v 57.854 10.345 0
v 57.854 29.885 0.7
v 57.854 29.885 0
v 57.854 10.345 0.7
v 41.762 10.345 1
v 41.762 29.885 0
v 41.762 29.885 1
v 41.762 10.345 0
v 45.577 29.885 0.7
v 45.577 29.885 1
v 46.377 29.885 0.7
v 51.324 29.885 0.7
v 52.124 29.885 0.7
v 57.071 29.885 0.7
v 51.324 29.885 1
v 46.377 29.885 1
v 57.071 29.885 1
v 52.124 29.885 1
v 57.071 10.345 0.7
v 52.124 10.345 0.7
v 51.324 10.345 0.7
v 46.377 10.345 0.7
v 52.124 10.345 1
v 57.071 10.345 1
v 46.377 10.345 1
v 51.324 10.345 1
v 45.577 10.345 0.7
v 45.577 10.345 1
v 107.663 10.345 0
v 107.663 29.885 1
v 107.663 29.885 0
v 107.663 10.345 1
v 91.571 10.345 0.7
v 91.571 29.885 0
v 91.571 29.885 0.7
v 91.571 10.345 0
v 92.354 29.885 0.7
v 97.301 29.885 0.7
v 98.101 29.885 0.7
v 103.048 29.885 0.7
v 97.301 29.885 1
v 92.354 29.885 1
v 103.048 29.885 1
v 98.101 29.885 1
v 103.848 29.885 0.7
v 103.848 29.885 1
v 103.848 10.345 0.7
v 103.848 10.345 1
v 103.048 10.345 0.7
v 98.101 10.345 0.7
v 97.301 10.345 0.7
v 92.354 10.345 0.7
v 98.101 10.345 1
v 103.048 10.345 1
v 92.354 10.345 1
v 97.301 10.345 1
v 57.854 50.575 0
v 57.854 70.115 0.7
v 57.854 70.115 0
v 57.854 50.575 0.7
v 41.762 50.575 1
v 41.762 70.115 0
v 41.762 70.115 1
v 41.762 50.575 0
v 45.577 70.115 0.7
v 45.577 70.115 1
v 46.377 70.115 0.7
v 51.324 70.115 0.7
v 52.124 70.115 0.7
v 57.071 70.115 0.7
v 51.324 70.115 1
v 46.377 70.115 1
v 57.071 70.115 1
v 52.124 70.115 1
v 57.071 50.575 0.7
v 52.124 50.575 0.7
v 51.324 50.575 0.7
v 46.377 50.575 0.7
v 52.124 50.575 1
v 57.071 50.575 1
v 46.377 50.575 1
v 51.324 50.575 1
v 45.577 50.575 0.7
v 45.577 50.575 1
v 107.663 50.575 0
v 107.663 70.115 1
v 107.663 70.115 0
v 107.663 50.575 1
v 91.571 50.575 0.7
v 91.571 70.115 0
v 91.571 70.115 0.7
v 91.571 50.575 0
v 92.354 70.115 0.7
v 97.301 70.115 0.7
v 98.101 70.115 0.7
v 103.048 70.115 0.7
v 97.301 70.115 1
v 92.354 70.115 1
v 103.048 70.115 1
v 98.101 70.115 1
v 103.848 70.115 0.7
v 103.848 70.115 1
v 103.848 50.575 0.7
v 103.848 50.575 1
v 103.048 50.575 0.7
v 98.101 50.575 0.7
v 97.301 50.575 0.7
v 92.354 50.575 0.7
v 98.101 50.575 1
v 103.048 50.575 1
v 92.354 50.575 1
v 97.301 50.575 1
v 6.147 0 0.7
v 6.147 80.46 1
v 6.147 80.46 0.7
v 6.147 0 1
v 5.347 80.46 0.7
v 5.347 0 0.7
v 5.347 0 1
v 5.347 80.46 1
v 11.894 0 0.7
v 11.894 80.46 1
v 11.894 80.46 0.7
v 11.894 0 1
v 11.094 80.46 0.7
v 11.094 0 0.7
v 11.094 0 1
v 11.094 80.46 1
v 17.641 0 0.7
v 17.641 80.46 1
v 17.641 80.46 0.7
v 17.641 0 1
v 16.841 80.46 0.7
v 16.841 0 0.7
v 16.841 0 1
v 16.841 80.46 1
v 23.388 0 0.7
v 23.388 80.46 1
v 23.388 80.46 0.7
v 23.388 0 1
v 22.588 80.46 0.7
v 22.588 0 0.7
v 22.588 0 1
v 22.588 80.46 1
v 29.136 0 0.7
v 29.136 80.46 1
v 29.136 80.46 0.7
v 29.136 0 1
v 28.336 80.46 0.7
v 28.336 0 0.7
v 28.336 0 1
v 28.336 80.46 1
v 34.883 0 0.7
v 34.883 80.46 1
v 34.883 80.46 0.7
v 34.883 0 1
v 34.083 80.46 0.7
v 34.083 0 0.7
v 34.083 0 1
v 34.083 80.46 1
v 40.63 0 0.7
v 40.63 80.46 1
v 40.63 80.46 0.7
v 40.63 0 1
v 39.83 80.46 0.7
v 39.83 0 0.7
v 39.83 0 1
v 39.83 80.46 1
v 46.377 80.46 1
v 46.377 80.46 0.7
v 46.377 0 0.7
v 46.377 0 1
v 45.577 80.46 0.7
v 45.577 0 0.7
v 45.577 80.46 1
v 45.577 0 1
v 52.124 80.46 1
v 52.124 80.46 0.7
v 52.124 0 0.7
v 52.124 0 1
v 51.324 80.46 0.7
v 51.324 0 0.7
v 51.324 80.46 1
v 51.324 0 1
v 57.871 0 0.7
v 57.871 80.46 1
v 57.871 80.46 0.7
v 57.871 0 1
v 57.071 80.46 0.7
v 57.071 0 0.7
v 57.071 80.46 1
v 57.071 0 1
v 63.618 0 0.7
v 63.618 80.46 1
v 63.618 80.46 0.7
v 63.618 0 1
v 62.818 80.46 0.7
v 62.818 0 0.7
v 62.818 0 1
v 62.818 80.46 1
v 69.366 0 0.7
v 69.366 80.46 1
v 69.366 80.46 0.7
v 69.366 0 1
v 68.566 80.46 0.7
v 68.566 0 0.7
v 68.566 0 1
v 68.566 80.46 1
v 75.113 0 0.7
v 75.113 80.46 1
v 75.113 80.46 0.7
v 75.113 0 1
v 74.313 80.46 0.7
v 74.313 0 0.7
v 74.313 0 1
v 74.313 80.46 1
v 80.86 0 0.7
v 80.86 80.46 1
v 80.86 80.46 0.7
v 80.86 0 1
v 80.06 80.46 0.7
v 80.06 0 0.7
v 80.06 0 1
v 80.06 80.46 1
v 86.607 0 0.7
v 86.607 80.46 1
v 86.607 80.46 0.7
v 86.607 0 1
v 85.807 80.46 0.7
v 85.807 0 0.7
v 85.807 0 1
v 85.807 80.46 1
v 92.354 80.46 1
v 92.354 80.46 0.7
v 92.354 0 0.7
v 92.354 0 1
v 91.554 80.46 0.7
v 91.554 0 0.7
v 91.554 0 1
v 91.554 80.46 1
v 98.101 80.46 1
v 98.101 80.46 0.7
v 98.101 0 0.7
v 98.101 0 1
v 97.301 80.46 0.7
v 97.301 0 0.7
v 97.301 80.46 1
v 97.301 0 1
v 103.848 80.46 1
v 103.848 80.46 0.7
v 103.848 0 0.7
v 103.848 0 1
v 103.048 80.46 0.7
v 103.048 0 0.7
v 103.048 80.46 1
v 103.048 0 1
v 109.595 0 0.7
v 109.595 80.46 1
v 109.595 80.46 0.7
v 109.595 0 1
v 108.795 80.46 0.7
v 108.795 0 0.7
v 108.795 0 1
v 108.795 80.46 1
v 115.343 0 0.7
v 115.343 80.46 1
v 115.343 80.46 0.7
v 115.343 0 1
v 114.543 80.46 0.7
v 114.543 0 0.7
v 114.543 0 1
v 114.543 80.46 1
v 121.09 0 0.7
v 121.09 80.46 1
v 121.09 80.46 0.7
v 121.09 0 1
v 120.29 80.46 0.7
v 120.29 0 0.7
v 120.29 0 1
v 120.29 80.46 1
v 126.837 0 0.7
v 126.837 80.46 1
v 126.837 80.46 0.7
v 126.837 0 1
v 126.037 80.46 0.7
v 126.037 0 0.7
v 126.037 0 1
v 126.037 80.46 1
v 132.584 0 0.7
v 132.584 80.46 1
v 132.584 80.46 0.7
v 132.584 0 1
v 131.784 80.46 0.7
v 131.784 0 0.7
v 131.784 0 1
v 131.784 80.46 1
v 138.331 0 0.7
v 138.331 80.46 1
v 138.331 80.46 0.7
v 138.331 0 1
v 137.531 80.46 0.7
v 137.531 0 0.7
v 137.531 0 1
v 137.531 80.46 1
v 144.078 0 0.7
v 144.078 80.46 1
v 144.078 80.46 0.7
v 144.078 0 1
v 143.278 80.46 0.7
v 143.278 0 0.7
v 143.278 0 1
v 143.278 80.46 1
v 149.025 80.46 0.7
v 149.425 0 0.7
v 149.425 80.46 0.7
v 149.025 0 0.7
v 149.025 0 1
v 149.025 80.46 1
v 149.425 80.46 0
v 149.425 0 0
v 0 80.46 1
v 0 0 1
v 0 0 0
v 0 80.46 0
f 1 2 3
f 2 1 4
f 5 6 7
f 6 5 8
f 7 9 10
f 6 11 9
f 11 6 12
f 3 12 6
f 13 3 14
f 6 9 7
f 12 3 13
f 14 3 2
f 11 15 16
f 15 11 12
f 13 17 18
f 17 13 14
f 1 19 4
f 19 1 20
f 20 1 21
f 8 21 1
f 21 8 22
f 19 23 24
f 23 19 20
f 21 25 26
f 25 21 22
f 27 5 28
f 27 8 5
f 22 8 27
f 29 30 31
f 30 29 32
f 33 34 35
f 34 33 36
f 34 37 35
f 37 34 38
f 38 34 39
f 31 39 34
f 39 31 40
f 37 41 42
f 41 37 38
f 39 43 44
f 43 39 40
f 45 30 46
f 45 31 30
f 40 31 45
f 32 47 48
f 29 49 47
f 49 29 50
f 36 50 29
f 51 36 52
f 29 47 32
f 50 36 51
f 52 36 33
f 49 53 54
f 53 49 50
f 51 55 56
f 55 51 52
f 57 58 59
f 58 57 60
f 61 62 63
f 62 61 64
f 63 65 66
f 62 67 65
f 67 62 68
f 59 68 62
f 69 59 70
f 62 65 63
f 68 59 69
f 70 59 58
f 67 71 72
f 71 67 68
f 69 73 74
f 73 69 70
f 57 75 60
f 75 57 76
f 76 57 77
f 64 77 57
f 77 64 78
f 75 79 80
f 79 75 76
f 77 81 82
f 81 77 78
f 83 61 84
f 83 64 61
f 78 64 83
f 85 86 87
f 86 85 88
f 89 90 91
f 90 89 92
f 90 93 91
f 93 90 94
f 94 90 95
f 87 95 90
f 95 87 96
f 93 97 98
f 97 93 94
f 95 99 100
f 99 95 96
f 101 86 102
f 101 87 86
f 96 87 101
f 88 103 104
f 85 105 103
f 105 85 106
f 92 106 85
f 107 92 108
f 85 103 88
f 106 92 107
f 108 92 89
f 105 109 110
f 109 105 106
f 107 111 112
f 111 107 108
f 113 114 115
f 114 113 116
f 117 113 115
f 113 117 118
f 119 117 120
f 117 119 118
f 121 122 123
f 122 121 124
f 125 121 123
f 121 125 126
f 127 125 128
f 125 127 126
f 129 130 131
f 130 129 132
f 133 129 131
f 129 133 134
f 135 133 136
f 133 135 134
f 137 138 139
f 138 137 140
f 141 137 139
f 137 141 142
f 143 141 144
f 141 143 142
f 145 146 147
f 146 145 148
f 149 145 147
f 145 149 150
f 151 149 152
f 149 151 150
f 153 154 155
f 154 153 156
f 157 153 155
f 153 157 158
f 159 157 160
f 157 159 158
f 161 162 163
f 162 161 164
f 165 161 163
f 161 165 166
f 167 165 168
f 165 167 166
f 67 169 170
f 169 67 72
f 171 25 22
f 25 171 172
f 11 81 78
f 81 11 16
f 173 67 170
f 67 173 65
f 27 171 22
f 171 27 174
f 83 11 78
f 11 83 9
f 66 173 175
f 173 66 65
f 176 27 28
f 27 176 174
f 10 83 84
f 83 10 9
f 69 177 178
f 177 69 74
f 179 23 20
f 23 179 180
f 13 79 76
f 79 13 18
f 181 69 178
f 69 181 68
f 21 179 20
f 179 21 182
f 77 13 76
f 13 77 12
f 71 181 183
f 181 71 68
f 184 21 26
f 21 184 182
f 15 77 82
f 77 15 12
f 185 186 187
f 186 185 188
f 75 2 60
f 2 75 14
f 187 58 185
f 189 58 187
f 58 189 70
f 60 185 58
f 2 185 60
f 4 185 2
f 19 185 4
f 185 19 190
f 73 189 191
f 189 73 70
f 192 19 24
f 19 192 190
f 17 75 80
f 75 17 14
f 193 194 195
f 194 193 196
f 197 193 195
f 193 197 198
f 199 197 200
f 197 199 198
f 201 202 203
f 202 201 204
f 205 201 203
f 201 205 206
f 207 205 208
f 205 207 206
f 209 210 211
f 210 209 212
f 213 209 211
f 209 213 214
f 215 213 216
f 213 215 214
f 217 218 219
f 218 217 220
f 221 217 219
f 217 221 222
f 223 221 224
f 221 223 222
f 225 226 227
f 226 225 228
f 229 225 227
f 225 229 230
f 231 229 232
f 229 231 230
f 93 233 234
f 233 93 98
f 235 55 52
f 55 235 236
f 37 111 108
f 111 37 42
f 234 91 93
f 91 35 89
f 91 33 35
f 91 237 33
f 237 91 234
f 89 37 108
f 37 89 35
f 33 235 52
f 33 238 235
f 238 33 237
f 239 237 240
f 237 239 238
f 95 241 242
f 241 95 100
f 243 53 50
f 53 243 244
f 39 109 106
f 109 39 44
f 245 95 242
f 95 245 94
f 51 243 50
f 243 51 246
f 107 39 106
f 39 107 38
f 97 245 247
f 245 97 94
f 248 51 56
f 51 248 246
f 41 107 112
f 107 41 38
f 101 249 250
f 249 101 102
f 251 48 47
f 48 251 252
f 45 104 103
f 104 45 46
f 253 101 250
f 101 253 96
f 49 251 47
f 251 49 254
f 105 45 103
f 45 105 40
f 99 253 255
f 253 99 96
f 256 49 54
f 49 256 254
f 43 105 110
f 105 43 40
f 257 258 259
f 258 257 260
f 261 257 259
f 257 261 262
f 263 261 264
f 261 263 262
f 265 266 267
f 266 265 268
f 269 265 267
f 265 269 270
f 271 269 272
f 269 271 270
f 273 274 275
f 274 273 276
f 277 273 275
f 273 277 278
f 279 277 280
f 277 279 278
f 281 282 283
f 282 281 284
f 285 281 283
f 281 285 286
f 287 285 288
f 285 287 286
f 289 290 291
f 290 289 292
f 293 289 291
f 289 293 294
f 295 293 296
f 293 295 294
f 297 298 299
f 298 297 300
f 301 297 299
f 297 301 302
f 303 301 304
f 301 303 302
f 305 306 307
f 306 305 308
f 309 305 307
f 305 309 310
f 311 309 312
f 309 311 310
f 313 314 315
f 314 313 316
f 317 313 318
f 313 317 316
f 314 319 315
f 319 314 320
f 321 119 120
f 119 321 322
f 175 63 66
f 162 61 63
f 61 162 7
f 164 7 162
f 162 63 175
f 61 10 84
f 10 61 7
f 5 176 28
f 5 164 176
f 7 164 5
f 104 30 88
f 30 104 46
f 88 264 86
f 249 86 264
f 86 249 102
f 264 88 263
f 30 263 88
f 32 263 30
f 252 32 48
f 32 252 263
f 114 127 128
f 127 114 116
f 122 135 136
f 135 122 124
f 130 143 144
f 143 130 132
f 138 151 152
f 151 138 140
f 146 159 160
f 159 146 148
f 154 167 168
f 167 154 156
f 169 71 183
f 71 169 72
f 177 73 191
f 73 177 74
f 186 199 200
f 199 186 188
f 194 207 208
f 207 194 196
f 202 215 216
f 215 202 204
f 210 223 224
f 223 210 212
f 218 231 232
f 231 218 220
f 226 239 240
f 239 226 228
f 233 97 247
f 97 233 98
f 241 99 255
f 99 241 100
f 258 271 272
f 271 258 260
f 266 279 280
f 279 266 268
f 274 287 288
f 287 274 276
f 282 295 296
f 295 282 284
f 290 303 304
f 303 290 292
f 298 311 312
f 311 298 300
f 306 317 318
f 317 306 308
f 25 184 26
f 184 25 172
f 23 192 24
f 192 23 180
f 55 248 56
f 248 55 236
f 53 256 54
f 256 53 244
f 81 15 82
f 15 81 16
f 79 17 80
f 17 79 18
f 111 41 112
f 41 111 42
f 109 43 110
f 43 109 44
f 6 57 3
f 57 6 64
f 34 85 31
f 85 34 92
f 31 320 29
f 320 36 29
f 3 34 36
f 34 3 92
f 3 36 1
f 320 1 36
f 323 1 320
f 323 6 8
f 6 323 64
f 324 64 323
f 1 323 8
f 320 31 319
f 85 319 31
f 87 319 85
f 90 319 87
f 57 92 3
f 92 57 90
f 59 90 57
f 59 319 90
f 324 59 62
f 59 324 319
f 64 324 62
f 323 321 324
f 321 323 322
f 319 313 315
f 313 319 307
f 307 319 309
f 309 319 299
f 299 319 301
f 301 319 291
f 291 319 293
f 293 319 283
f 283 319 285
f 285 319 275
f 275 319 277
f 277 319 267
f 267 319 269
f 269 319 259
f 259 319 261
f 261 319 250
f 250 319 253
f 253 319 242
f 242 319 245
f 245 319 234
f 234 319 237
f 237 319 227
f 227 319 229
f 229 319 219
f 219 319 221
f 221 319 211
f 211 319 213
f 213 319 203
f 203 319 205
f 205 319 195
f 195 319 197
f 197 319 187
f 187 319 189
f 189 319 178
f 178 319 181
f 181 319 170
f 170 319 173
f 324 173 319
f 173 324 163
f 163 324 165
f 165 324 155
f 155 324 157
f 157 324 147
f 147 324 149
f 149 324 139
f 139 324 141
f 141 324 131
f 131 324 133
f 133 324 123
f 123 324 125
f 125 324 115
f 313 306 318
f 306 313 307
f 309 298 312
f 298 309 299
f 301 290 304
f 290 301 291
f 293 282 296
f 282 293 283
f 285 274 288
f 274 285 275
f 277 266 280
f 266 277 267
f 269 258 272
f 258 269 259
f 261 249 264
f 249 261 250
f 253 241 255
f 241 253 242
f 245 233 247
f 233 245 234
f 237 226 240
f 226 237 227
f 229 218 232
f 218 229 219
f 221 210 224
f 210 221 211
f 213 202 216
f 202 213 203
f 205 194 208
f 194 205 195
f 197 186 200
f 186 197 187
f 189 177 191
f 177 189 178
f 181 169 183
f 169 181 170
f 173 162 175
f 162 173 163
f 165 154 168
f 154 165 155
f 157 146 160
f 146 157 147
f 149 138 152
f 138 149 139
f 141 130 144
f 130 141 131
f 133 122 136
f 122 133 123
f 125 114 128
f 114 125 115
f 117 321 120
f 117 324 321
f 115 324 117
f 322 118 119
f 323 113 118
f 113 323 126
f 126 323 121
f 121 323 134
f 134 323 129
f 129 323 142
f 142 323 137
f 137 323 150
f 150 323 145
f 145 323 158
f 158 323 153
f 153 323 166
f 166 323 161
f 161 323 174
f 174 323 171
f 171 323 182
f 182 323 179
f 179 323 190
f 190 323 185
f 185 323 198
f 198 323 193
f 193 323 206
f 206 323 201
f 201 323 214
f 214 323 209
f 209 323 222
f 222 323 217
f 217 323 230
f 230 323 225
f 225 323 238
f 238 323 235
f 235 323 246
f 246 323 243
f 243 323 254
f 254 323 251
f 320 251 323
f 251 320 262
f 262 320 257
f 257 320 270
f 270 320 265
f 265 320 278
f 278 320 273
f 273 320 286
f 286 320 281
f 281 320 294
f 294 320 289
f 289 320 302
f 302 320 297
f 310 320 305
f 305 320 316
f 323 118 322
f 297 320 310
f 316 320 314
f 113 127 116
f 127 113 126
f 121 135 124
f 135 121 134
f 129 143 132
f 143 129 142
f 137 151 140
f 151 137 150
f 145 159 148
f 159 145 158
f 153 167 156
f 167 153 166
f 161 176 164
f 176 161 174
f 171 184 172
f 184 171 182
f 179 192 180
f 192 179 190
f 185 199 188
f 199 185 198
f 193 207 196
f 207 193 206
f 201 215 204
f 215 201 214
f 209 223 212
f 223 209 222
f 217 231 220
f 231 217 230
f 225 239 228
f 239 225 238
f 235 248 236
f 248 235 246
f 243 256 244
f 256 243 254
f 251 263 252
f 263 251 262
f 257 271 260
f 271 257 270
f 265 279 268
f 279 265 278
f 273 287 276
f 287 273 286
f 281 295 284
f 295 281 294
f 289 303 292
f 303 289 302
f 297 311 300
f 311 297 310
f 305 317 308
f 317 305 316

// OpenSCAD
/*
 * PROMPT: Right side wall panel of the Cities-Skylines-style police station main
 * building in H0 scale (1:87). Two large windows per floor at one-third and
 * two-thirds depth positions (four windows total). Vertical siding grooves on
 * exterior face. Flat 1 mm panel, exterior face up.
 */

$fn = 32;
S = 1/87;
panel_t = 1.0;

main_d_real   = 13000;
floor_h_real  = 3500;
win_w_real    = 1400;
win_h_real    = 1700;
siding_p_real = 500;
siding_w      = 0.8;
siding_d      = 0.3;

main_d   = main_d_real * S;
floor_h  = floor_h_real * S;
bld_h    = 2 * floor_h;
win_w    = win_w_real * S;
win_h    = win_h_real * S;
siding_p = siding_p_real * S;

module wall_right() {
    difference() {
        cube([main_d, bld_h, panel_t]);

        // windows at 1/3 and 2/3 depth, both floors
        for (f = [0:1]) for (pos = [1/3, 2/3]) {
            wx = pos * main_d - win_w/2;
            wy = f * floor_h + (floor_h - win_h) / 2;
            translate([wx, wy, -1])
                cube([win_w, win_h, panel_t+2]);
        }

        // vertical siding grooves on exterior face
        for (i = [1 : floor(main_d / siding_p)]) {
            gx = i * siding_p - siding_w/2;
            translate([gx, -1, panel_t - siding_d])
                cube([siding_w, bld_h+2, siding_d+1]);
        }
    }
}

wall_right();
